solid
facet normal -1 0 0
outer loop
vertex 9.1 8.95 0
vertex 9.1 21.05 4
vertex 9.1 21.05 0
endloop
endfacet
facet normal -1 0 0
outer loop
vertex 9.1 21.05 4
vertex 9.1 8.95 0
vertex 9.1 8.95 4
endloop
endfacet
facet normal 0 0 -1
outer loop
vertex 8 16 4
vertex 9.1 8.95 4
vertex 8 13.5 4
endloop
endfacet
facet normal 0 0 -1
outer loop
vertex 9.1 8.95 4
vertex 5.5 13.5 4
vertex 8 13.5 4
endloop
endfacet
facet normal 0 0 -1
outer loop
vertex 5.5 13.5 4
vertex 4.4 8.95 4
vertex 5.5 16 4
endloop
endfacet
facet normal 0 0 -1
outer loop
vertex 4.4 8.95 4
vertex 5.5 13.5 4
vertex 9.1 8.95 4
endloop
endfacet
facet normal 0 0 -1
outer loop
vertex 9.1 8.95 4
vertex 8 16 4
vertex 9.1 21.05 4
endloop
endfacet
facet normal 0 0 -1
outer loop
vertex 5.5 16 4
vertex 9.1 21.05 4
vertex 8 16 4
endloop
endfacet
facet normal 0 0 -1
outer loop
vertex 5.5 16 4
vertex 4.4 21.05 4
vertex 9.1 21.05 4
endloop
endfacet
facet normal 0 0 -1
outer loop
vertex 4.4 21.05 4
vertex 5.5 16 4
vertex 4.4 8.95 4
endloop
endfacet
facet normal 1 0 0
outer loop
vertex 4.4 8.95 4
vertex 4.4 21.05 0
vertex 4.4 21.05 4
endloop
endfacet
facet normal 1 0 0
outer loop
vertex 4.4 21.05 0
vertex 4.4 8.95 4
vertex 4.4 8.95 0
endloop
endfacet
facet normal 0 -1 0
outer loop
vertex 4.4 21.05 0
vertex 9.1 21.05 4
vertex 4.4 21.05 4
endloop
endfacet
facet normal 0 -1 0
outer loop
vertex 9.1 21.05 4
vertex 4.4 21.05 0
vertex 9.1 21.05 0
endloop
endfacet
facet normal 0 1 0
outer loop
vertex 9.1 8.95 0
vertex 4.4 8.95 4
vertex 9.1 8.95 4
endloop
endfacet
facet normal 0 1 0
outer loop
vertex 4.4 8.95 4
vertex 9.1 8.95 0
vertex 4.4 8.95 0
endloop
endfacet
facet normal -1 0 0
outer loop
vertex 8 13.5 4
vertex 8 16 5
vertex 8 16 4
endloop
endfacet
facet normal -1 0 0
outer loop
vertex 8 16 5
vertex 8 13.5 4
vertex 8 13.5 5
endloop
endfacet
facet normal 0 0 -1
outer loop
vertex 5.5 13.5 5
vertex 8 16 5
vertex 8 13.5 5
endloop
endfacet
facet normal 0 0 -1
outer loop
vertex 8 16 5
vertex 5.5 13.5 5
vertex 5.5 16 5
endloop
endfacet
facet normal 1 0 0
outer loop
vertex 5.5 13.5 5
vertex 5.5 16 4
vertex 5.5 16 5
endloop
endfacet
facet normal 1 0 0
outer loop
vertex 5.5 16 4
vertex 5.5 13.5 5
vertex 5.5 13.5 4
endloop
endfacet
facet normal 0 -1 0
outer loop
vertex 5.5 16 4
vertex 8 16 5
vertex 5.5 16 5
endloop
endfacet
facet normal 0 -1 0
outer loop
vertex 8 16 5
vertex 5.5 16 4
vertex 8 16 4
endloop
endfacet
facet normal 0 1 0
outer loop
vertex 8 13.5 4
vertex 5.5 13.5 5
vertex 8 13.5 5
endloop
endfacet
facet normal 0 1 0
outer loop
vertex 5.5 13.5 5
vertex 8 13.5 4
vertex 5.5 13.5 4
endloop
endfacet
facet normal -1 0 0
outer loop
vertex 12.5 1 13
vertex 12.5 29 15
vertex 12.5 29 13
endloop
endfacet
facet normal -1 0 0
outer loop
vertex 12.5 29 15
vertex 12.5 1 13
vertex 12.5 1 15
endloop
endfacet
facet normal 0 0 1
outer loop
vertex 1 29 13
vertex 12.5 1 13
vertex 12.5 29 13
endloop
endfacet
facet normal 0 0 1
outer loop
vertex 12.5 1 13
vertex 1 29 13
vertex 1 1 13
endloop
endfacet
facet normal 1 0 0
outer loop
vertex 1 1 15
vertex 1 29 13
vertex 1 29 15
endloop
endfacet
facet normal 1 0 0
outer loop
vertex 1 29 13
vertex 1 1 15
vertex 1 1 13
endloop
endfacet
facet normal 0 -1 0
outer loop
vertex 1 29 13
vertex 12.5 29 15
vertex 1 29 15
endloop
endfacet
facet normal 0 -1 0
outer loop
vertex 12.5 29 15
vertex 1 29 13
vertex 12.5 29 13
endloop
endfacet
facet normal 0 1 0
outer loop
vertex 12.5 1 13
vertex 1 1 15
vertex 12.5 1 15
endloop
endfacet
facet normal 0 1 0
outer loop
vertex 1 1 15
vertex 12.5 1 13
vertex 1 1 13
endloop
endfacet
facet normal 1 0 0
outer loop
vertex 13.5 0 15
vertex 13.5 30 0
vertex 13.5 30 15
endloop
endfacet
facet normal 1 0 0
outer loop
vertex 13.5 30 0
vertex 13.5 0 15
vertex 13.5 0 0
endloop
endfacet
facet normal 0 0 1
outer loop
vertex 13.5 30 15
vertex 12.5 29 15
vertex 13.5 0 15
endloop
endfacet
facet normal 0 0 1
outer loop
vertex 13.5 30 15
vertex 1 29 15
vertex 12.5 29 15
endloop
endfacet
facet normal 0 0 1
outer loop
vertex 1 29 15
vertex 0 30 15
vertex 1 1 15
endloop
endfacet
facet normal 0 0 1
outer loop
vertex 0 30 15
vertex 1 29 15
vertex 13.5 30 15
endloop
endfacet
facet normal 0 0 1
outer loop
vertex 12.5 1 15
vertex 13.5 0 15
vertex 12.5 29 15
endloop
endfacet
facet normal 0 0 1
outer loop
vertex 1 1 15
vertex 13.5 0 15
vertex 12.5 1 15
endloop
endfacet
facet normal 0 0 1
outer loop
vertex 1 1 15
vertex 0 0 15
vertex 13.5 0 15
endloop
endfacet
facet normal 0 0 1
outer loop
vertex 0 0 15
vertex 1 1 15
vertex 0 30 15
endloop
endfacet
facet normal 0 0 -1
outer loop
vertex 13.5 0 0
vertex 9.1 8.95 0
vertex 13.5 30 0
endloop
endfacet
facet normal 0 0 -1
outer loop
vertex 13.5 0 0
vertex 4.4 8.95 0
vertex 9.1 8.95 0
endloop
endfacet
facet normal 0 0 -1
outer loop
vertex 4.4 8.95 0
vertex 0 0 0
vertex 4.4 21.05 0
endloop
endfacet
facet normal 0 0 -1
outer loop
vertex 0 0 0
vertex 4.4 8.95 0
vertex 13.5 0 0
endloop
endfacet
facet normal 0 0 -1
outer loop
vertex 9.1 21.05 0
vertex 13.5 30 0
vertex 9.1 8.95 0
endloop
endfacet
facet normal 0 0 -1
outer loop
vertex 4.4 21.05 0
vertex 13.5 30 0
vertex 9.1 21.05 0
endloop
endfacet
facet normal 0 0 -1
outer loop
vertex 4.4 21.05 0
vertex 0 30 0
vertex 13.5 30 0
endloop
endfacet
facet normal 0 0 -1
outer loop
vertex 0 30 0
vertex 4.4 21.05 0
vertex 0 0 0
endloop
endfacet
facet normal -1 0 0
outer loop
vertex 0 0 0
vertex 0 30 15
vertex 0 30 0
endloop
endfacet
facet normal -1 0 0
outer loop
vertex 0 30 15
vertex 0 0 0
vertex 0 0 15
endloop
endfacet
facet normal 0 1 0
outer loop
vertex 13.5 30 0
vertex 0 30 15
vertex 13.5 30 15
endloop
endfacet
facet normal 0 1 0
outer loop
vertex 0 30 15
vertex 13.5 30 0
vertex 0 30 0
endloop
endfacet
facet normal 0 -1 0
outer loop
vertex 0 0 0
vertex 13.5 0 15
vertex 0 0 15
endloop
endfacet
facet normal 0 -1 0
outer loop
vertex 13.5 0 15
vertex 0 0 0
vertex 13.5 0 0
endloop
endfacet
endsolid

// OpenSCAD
    wiggle = 1;
    travel = 2;
    
    swb_x = 3.7;//4.5;
    swb_y = 9.1;//10;
    swb_z = 3.5;//5;
    
    tip_x = 1.5;//2;
    tip_y = 1.5;//2;
    tip_z = 2;

    tile_x = 11.5;
    tile_y = 28; 
    tile_z = 4;
    outerLip = 2;

difference(){
    positives();
    negatives();
}

module positives(){
translate([0,0,0]) cube([tile_x+outerLip,tile_y+outerLip,15]);
}

module negatives(){
    //tile_x = 10;
    //tile_y = 26;
    //tile_z = 4;
    //Full switch body:
    translate([(tile_x+outerLip)/2-swb_x/2-wiggle/2,(tile_y+outerLip)/2-swb_y/2-wiggle/2-travel/2,0-wiggle/2]) cube([swb_x+wiggle,swb_y+wiggle+travel,swb_z+wiggle]);
    //Toggle handle:
    translate([(tile_x+outerLip)/2-wiggle/2-tip_x/2,(tile_y+outerLip)/2-0-wiggle/2-travel/2,swb_z-wiggle/2]) cube([tip_x+wiggle,tip_y+wiggle,tip_z]);
    //Tile inset:
    translate([outerLip/2,outerLip/2,15-2]) cube([tile_x,tile_y,tile_z]);
}
